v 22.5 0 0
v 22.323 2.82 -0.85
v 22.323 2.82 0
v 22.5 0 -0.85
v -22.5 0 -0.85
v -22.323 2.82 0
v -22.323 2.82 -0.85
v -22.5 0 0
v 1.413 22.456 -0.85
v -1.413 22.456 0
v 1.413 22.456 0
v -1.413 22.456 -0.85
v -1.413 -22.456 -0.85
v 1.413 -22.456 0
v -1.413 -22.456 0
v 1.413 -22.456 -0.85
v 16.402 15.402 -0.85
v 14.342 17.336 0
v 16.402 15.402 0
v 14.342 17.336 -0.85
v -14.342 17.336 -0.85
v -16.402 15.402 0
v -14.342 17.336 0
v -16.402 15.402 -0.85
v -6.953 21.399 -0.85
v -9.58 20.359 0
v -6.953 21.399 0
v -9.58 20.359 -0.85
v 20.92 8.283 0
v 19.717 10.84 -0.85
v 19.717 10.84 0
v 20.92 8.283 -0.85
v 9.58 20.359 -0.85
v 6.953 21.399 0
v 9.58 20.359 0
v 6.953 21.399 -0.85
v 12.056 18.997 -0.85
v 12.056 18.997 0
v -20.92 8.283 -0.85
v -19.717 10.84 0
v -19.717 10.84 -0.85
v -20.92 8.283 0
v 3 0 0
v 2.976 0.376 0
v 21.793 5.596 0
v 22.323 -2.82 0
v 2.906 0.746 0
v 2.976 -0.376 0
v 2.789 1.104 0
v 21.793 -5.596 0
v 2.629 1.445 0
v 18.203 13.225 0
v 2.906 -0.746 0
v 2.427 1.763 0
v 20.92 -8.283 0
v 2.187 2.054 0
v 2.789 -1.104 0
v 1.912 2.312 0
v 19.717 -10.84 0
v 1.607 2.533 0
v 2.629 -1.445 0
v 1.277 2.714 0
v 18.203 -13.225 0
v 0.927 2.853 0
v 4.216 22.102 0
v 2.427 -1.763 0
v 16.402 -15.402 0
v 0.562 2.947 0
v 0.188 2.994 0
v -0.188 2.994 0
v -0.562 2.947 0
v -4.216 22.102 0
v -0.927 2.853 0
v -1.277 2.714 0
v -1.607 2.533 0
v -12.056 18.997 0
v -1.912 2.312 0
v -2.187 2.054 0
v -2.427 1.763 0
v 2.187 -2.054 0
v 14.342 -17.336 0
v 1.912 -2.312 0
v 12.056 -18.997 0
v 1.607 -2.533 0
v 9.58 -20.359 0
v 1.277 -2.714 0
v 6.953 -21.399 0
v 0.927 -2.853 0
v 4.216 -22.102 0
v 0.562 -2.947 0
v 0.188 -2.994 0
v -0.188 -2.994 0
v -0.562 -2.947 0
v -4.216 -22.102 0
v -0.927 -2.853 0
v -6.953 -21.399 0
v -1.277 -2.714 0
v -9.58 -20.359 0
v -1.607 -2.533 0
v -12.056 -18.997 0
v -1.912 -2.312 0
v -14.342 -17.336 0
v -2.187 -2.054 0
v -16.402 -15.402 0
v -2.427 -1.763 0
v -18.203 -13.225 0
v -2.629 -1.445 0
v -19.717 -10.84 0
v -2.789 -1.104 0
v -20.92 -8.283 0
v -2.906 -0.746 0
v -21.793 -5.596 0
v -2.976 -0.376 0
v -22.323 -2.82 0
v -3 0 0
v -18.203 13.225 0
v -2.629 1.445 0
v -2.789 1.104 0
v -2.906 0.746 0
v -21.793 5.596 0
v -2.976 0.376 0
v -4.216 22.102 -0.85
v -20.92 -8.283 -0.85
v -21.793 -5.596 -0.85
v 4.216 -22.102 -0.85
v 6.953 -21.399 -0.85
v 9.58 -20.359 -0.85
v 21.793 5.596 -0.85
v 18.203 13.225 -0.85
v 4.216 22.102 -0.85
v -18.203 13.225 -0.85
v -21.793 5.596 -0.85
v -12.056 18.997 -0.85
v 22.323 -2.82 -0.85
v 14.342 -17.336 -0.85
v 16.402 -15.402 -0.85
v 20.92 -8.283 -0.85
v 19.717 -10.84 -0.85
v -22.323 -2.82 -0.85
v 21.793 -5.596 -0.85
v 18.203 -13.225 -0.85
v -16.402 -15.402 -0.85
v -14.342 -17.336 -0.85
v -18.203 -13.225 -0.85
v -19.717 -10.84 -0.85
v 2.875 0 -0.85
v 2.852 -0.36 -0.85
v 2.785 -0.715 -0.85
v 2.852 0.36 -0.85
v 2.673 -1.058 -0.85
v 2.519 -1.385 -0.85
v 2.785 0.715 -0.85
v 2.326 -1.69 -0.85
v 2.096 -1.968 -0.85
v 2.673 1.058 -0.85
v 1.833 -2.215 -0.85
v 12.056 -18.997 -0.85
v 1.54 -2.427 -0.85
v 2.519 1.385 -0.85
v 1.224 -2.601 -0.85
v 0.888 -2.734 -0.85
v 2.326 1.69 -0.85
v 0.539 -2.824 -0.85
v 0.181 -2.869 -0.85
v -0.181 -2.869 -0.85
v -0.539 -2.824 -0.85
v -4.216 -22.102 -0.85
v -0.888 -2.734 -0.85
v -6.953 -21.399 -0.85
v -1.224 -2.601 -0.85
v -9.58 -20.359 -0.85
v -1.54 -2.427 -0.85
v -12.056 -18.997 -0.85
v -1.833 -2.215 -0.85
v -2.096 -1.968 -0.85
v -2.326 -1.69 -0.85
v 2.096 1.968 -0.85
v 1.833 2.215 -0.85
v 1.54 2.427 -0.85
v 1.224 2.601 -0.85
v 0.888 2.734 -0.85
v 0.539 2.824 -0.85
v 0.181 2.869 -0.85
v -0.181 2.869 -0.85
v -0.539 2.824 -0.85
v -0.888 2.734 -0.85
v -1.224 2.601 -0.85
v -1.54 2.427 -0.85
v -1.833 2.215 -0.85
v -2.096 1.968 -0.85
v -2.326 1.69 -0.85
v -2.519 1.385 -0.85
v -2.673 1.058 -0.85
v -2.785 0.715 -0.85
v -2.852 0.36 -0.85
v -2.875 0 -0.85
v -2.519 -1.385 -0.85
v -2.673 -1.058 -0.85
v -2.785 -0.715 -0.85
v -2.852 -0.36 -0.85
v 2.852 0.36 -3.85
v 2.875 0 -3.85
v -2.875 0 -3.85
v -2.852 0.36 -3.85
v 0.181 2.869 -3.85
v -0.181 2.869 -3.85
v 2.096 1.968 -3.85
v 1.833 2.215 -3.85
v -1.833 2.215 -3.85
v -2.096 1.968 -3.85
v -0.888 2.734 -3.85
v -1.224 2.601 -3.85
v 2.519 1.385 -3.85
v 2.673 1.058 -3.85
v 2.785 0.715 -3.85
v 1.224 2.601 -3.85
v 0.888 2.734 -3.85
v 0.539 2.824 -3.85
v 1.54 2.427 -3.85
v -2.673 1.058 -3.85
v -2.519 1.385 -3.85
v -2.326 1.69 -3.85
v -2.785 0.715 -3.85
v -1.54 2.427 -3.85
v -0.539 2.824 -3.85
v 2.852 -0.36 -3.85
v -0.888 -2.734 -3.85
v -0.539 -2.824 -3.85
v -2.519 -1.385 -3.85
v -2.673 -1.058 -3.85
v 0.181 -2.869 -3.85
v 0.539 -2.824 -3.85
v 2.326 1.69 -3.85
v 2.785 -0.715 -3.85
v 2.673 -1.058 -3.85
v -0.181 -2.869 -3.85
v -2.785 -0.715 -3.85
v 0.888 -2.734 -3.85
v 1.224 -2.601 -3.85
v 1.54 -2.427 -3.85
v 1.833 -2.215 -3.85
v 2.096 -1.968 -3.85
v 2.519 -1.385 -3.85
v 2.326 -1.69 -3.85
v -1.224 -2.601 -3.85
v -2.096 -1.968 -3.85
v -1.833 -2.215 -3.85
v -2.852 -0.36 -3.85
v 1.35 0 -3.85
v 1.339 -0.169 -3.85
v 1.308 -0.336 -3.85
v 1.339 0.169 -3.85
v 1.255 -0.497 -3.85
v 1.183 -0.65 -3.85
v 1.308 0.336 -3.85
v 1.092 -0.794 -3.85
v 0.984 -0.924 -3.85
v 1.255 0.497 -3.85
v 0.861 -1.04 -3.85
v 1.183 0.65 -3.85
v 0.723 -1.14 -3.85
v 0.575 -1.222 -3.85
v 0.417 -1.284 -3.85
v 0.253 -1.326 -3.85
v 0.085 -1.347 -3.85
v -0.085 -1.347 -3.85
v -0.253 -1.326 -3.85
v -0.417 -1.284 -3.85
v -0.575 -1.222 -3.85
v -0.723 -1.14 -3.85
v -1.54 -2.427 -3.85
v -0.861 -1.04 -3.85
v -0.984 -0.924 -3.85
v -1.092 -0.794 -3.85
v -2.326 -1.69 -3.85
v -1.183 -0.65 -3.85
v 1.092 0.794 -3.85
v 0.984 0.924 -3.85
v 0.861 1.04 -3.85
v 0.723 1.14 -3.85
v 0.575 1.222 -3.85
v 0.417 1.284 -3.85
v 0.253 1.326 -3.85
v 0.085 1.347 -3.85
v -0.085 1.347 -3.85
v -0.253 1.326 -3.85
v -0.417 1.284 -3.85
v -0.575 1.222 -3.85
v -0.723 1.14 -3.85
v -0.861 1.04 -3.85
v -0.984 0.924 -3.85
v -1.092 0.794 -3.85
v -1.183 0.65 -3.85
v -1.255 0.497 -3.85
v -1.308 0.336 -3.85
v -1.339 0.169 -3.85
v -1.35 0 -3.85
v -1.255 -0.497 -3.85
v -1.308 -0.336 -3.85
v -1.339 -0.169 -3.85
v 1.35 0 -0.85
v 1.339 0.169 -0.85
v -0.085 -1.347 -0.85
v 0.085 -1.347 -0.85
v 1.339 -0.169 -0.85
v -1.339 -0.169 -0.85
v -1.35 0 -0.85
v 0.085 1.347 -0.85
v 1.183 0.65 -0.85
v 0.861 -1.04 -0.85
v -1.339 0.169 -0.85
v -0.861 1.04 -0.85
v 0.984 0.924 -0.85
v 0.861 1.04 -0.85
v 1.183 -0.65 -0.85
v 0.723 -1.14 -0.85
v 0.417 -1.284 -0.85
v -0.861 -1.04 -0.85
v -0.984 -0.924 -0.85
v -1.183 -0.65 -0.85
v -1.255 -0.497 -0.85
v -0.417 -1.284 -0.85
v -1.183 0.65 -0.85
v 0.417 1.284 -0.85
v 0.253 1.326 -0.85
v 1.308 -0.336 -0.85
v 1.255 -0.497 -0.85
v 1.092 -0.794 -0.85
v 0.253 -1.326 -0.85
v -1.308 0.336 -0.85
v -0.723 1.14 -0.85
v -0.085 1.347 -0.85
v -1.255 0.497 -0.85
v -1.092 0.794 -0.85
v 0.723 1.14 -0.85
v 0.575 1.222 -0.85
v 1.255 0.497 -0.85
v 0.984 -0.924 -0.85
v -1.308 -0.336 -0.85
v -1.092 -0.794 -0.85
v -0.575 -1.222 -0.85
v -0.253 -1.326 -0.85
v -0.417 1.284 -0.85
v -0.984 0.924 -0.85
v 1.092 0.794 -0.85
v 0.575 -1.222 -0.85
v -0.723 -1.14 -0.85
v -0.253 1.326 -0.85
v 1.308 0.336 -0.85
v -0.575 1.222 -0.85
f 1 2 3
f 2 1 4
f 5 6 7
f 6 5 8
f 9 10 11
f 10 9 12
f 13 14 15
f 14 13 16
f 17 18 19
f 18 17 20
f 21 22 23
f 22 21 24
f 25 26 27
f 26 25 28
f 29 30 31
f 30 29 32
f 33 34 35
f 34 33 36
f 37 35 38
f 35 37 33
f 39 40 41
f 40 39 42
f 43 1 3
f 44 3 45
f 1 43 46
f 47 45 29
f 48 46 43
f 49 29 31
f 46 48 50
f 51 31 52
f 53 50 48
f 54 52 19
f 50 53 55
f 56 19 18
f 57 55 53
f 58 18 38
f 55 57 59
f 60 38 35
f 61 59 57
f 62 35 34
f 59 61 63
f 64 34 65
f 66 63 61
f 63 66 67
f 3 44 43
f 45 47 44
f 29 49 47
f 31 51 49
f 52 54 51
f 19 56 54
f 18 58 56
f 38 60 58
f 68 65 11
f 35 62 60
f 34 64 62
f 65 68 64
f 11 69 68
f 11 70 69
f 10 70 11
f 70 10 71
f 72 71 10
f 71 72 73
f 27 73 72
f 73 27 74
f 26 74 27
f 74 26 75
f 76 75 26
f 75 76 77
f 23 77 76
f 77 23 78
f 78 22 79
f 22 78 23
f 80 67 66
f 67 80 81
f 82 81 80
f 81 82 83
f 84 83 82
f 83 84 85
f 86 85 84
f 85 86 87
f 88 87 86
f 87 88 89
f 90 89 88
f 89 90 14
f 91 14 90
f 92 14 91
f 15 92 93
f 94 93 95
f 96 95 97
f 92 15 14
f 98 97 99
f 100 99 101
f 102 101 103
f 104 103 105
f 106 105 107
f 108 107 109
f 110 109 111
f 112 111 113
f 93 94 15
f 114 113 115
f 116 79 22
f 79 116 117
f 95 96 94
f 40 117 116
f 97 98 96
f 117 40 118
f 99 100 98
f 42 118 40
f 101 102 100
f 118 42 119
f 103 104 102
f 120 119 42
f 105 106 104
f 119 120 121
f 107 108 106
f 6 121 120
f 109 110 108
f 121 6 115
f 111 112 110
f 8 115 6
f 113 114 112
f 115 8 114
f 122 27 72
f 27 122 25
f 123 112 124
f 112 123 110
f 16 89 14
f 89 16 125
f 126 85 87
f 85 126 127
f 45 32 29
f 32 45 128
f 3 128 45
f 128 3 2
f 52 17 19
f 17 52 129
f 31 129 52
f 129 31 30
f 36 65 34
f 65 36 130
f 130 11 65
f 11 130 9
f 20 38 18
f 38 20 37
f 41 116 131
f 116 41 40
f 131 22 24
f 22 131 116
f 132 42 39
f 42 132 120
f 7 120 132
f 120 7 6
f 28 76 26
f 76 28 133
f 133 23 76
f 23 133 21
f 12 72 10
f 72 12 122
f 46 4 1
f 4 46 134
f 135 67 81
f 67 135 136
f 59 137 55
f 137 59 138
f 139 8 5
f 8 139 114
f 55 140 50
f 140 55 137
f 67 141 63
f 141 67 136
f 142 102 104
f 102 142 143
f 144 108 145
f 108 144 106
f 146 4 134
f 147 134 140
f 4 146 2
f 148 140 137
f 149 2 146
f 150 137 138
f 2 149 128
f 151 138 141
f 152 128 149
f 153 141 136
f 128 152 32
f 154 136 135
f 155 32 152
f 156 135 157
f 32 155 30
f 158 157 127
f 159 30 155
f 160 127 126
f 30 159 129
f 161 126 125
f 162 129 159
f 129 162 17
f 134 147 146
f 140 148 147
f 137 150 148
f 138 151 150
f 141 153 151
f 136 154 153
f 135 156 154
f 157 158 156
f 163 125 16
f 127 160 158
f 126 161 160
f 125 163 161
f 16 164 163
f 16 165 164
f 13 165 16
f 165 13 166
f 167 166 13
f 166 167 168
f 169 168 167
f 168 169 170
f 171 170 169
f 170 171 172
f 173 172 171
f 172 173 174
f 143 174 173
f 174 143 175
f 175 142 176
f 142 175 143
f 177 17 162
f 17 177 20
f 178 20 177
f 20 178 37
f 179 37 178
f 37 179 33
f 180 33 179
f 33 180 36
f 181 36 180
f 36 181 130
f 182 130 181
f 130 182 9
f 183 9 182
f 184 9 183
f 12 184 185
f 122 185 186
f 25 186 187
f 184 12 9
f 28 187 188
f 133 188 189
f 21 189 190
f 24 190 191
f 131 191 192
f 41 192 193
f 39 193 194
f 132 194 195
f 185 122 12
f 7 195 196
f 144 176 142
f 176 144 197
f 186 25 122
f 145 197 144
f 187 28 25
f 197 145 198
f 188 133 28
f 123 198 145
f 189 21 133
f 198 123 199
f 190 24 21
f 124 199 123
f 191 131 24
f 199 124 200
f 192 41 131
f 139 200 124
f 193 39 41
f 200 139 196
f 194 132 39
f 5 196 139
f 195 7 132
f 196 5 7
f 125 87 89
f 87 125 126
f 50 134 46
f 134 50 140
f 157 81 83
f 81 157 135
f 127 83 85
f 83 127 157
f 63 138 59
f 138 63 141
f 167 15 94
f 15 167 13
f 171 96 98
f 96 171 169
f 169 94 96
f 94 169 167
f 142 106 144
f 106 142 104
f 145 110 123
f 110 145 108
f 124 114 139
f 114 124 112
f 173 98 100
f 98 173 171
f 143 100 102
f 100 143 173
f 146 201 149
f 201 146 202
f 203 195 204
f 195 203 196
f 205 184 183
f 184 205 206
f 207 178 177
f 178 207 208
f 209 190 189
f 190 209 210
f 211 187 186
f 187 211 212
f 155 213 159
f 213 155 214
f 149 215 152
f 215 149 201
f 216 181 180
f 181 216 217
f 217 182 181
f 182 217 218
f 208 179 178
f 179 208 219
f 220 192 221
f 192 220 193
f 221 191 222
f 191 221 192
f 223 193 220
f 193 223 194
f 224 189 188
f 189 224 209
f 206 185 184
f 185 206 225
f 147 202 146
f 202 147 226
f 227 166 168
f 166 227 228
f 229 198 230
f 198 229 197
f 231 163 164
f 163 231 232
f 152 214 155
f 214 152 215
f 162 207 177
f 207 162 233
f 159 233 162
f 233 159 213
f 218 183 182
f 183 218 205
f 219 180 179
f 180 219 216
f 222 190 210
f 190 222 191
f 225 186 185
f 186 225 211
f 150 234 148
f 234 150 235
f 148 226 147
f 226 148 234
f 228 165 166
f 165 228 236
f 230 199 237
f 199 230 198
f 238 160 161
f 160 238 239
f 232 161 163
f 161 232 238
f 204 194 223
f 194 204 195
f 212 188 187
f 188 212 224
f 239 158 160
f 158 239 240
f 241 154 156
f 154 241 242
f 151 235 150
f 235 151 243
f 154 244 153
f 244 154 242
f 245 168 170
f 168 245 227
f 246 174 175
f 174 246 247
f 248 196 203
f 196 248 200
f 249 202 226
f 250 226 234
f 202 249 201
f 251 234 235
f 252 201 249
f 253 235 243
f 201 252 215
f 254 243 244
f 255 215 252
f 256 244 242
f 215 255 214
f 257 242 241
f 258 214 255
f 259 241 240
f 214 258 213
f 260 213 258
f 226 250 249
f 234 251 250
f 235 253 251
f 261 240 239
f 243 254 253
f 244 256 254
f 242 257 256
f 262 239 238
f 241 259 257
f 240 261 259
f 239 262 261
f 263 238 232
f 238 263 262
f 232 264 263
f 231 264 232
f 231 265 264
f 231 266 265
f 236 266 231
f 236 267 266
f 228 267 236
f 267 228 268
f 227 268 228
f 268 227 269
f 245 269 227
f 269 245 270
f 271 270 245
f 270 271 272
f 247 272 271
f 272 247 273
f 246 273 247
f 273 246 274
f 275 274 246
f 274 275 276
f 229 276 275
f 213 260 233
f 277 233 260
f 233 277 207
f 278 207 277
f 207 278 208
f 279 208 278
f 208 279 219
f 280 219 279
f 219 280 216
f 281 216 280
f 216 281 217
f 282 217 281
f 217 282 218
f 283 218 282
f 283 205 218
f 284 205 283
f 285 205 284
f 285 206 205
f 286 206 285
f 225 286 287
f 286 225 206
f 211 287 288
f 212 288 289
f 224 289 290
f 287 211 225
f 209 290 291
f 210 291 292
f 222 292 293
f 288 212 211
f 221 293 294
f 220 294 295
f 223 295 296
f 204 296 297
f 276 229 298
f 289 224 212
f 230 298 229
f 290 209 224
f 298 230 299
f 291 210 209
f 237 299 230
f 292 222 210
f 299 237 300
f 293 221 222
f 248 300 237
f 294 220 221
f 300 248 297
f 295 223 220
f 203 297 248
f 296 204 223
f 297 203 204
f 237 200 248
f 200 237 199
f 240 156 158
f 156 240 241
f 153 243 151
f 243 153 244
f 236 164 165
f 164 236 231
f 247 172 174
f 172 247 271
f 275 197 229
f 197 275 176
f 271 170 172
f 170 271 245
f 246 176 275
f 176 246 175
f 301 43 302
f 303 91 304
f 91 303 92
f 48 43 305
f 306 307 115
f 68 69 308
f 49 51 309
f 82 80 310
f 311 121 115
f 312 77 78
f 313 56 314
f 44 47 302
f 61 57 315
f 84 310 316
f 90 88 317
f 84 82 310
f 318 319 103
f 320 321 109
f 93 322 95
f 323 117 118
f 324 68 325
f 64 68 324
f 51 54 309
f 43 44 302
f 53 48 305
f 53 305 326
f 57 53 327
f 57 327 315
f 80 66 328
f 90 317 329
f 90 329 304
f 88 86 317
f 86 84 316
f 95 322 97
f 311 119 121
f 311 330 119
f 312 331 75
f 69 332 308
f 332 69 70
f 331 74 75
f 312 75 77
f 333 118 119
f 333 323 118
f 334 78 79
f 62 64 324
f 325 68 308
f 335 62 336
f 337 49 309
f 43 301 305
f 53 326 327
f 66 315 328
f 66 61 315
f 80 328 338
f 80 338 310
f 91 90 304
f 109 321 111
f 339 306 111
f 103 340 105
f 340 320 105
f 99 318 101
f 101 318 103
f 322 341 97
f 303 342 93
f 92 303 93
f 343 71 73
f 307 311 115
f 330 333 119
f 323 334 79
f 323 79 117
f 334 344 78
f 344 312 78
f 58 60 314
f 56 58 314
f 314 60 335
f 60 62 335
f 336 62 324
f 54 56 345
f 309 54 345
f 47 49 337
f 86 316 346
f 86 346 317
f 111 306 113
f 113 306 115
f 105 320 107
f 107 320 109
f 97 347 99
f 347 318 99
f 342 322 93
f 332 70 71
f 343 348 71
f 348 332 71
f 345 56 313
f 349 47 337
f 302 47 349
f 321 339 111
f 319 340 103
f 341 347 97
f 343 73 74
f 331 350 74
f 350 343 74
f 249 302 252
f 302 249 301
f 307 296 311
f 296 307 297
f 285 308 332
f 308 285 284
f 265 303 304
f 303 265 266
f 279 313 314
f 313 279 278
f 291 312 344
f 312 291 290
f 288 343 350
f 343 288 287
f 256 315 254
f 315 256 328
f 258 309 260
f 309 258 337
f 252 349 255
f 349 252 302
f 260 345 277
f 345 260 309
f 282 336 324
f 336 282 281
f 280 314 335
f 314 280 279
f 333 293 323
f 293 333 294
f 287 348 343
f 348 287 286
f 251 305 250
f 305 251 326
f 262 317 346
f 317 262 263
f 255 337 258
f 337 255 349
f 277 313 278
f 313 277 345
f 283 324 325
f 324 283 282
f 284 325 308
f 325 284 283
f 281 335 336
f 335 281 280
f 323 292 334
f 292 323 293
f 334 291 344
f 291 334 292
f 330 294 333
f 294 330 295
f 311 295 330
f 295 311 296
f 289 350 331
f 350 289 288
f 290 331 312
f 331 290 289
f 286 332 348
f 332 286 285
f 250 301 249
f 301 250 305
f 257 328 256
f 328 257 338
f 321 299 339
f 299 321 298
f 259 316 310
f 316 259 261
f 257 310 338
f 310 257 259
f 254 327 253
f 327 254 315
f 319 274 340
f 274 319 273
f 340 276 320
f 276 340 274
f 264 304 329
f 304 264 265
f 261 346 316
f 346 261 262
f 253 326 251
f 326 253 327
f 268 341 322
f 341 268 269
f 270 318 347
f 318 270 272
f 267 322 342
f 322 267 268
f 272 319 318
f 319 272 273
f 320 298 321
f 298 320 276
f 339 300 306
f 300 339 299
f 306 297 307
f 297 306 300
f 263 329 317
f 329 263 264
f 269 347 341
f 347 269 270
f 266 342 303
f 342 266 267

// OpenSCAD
$fn = 50;

difference() {
	union() {
		translate(v = [0, 0, -0.85]) {
			cylinder(h = 0.85, r = 22.5);
		}
		#translate(v = [0, 0, -3.85]) {
			cylinder(h = 3.85, r = 2.875);
		}
	}
	union() {
		translate(v = [0, 0, 0]) {
			rotate(a = [0, 0, 0]) {
				difference() {
					union() {
						translate(v = [0, 0, -3.85]) {
							cylinder(h = 3.85, r = 1.0);
						}
						translate(v = [0, 0, -0.85]) {
							cylinder(h = 0.85, r1 = 1.35, r2 = 3.0);
						}
						translate(v = [0, 0, -3.85]) {
							cylinder(h = 3.85, r = 1.35);
						}
						translate(v = [0, 0, -3.85]) {
							cylinder(h = 3.85, r = 1.0);
						}
					}
					union();
				}
			}
		}
	}
}
